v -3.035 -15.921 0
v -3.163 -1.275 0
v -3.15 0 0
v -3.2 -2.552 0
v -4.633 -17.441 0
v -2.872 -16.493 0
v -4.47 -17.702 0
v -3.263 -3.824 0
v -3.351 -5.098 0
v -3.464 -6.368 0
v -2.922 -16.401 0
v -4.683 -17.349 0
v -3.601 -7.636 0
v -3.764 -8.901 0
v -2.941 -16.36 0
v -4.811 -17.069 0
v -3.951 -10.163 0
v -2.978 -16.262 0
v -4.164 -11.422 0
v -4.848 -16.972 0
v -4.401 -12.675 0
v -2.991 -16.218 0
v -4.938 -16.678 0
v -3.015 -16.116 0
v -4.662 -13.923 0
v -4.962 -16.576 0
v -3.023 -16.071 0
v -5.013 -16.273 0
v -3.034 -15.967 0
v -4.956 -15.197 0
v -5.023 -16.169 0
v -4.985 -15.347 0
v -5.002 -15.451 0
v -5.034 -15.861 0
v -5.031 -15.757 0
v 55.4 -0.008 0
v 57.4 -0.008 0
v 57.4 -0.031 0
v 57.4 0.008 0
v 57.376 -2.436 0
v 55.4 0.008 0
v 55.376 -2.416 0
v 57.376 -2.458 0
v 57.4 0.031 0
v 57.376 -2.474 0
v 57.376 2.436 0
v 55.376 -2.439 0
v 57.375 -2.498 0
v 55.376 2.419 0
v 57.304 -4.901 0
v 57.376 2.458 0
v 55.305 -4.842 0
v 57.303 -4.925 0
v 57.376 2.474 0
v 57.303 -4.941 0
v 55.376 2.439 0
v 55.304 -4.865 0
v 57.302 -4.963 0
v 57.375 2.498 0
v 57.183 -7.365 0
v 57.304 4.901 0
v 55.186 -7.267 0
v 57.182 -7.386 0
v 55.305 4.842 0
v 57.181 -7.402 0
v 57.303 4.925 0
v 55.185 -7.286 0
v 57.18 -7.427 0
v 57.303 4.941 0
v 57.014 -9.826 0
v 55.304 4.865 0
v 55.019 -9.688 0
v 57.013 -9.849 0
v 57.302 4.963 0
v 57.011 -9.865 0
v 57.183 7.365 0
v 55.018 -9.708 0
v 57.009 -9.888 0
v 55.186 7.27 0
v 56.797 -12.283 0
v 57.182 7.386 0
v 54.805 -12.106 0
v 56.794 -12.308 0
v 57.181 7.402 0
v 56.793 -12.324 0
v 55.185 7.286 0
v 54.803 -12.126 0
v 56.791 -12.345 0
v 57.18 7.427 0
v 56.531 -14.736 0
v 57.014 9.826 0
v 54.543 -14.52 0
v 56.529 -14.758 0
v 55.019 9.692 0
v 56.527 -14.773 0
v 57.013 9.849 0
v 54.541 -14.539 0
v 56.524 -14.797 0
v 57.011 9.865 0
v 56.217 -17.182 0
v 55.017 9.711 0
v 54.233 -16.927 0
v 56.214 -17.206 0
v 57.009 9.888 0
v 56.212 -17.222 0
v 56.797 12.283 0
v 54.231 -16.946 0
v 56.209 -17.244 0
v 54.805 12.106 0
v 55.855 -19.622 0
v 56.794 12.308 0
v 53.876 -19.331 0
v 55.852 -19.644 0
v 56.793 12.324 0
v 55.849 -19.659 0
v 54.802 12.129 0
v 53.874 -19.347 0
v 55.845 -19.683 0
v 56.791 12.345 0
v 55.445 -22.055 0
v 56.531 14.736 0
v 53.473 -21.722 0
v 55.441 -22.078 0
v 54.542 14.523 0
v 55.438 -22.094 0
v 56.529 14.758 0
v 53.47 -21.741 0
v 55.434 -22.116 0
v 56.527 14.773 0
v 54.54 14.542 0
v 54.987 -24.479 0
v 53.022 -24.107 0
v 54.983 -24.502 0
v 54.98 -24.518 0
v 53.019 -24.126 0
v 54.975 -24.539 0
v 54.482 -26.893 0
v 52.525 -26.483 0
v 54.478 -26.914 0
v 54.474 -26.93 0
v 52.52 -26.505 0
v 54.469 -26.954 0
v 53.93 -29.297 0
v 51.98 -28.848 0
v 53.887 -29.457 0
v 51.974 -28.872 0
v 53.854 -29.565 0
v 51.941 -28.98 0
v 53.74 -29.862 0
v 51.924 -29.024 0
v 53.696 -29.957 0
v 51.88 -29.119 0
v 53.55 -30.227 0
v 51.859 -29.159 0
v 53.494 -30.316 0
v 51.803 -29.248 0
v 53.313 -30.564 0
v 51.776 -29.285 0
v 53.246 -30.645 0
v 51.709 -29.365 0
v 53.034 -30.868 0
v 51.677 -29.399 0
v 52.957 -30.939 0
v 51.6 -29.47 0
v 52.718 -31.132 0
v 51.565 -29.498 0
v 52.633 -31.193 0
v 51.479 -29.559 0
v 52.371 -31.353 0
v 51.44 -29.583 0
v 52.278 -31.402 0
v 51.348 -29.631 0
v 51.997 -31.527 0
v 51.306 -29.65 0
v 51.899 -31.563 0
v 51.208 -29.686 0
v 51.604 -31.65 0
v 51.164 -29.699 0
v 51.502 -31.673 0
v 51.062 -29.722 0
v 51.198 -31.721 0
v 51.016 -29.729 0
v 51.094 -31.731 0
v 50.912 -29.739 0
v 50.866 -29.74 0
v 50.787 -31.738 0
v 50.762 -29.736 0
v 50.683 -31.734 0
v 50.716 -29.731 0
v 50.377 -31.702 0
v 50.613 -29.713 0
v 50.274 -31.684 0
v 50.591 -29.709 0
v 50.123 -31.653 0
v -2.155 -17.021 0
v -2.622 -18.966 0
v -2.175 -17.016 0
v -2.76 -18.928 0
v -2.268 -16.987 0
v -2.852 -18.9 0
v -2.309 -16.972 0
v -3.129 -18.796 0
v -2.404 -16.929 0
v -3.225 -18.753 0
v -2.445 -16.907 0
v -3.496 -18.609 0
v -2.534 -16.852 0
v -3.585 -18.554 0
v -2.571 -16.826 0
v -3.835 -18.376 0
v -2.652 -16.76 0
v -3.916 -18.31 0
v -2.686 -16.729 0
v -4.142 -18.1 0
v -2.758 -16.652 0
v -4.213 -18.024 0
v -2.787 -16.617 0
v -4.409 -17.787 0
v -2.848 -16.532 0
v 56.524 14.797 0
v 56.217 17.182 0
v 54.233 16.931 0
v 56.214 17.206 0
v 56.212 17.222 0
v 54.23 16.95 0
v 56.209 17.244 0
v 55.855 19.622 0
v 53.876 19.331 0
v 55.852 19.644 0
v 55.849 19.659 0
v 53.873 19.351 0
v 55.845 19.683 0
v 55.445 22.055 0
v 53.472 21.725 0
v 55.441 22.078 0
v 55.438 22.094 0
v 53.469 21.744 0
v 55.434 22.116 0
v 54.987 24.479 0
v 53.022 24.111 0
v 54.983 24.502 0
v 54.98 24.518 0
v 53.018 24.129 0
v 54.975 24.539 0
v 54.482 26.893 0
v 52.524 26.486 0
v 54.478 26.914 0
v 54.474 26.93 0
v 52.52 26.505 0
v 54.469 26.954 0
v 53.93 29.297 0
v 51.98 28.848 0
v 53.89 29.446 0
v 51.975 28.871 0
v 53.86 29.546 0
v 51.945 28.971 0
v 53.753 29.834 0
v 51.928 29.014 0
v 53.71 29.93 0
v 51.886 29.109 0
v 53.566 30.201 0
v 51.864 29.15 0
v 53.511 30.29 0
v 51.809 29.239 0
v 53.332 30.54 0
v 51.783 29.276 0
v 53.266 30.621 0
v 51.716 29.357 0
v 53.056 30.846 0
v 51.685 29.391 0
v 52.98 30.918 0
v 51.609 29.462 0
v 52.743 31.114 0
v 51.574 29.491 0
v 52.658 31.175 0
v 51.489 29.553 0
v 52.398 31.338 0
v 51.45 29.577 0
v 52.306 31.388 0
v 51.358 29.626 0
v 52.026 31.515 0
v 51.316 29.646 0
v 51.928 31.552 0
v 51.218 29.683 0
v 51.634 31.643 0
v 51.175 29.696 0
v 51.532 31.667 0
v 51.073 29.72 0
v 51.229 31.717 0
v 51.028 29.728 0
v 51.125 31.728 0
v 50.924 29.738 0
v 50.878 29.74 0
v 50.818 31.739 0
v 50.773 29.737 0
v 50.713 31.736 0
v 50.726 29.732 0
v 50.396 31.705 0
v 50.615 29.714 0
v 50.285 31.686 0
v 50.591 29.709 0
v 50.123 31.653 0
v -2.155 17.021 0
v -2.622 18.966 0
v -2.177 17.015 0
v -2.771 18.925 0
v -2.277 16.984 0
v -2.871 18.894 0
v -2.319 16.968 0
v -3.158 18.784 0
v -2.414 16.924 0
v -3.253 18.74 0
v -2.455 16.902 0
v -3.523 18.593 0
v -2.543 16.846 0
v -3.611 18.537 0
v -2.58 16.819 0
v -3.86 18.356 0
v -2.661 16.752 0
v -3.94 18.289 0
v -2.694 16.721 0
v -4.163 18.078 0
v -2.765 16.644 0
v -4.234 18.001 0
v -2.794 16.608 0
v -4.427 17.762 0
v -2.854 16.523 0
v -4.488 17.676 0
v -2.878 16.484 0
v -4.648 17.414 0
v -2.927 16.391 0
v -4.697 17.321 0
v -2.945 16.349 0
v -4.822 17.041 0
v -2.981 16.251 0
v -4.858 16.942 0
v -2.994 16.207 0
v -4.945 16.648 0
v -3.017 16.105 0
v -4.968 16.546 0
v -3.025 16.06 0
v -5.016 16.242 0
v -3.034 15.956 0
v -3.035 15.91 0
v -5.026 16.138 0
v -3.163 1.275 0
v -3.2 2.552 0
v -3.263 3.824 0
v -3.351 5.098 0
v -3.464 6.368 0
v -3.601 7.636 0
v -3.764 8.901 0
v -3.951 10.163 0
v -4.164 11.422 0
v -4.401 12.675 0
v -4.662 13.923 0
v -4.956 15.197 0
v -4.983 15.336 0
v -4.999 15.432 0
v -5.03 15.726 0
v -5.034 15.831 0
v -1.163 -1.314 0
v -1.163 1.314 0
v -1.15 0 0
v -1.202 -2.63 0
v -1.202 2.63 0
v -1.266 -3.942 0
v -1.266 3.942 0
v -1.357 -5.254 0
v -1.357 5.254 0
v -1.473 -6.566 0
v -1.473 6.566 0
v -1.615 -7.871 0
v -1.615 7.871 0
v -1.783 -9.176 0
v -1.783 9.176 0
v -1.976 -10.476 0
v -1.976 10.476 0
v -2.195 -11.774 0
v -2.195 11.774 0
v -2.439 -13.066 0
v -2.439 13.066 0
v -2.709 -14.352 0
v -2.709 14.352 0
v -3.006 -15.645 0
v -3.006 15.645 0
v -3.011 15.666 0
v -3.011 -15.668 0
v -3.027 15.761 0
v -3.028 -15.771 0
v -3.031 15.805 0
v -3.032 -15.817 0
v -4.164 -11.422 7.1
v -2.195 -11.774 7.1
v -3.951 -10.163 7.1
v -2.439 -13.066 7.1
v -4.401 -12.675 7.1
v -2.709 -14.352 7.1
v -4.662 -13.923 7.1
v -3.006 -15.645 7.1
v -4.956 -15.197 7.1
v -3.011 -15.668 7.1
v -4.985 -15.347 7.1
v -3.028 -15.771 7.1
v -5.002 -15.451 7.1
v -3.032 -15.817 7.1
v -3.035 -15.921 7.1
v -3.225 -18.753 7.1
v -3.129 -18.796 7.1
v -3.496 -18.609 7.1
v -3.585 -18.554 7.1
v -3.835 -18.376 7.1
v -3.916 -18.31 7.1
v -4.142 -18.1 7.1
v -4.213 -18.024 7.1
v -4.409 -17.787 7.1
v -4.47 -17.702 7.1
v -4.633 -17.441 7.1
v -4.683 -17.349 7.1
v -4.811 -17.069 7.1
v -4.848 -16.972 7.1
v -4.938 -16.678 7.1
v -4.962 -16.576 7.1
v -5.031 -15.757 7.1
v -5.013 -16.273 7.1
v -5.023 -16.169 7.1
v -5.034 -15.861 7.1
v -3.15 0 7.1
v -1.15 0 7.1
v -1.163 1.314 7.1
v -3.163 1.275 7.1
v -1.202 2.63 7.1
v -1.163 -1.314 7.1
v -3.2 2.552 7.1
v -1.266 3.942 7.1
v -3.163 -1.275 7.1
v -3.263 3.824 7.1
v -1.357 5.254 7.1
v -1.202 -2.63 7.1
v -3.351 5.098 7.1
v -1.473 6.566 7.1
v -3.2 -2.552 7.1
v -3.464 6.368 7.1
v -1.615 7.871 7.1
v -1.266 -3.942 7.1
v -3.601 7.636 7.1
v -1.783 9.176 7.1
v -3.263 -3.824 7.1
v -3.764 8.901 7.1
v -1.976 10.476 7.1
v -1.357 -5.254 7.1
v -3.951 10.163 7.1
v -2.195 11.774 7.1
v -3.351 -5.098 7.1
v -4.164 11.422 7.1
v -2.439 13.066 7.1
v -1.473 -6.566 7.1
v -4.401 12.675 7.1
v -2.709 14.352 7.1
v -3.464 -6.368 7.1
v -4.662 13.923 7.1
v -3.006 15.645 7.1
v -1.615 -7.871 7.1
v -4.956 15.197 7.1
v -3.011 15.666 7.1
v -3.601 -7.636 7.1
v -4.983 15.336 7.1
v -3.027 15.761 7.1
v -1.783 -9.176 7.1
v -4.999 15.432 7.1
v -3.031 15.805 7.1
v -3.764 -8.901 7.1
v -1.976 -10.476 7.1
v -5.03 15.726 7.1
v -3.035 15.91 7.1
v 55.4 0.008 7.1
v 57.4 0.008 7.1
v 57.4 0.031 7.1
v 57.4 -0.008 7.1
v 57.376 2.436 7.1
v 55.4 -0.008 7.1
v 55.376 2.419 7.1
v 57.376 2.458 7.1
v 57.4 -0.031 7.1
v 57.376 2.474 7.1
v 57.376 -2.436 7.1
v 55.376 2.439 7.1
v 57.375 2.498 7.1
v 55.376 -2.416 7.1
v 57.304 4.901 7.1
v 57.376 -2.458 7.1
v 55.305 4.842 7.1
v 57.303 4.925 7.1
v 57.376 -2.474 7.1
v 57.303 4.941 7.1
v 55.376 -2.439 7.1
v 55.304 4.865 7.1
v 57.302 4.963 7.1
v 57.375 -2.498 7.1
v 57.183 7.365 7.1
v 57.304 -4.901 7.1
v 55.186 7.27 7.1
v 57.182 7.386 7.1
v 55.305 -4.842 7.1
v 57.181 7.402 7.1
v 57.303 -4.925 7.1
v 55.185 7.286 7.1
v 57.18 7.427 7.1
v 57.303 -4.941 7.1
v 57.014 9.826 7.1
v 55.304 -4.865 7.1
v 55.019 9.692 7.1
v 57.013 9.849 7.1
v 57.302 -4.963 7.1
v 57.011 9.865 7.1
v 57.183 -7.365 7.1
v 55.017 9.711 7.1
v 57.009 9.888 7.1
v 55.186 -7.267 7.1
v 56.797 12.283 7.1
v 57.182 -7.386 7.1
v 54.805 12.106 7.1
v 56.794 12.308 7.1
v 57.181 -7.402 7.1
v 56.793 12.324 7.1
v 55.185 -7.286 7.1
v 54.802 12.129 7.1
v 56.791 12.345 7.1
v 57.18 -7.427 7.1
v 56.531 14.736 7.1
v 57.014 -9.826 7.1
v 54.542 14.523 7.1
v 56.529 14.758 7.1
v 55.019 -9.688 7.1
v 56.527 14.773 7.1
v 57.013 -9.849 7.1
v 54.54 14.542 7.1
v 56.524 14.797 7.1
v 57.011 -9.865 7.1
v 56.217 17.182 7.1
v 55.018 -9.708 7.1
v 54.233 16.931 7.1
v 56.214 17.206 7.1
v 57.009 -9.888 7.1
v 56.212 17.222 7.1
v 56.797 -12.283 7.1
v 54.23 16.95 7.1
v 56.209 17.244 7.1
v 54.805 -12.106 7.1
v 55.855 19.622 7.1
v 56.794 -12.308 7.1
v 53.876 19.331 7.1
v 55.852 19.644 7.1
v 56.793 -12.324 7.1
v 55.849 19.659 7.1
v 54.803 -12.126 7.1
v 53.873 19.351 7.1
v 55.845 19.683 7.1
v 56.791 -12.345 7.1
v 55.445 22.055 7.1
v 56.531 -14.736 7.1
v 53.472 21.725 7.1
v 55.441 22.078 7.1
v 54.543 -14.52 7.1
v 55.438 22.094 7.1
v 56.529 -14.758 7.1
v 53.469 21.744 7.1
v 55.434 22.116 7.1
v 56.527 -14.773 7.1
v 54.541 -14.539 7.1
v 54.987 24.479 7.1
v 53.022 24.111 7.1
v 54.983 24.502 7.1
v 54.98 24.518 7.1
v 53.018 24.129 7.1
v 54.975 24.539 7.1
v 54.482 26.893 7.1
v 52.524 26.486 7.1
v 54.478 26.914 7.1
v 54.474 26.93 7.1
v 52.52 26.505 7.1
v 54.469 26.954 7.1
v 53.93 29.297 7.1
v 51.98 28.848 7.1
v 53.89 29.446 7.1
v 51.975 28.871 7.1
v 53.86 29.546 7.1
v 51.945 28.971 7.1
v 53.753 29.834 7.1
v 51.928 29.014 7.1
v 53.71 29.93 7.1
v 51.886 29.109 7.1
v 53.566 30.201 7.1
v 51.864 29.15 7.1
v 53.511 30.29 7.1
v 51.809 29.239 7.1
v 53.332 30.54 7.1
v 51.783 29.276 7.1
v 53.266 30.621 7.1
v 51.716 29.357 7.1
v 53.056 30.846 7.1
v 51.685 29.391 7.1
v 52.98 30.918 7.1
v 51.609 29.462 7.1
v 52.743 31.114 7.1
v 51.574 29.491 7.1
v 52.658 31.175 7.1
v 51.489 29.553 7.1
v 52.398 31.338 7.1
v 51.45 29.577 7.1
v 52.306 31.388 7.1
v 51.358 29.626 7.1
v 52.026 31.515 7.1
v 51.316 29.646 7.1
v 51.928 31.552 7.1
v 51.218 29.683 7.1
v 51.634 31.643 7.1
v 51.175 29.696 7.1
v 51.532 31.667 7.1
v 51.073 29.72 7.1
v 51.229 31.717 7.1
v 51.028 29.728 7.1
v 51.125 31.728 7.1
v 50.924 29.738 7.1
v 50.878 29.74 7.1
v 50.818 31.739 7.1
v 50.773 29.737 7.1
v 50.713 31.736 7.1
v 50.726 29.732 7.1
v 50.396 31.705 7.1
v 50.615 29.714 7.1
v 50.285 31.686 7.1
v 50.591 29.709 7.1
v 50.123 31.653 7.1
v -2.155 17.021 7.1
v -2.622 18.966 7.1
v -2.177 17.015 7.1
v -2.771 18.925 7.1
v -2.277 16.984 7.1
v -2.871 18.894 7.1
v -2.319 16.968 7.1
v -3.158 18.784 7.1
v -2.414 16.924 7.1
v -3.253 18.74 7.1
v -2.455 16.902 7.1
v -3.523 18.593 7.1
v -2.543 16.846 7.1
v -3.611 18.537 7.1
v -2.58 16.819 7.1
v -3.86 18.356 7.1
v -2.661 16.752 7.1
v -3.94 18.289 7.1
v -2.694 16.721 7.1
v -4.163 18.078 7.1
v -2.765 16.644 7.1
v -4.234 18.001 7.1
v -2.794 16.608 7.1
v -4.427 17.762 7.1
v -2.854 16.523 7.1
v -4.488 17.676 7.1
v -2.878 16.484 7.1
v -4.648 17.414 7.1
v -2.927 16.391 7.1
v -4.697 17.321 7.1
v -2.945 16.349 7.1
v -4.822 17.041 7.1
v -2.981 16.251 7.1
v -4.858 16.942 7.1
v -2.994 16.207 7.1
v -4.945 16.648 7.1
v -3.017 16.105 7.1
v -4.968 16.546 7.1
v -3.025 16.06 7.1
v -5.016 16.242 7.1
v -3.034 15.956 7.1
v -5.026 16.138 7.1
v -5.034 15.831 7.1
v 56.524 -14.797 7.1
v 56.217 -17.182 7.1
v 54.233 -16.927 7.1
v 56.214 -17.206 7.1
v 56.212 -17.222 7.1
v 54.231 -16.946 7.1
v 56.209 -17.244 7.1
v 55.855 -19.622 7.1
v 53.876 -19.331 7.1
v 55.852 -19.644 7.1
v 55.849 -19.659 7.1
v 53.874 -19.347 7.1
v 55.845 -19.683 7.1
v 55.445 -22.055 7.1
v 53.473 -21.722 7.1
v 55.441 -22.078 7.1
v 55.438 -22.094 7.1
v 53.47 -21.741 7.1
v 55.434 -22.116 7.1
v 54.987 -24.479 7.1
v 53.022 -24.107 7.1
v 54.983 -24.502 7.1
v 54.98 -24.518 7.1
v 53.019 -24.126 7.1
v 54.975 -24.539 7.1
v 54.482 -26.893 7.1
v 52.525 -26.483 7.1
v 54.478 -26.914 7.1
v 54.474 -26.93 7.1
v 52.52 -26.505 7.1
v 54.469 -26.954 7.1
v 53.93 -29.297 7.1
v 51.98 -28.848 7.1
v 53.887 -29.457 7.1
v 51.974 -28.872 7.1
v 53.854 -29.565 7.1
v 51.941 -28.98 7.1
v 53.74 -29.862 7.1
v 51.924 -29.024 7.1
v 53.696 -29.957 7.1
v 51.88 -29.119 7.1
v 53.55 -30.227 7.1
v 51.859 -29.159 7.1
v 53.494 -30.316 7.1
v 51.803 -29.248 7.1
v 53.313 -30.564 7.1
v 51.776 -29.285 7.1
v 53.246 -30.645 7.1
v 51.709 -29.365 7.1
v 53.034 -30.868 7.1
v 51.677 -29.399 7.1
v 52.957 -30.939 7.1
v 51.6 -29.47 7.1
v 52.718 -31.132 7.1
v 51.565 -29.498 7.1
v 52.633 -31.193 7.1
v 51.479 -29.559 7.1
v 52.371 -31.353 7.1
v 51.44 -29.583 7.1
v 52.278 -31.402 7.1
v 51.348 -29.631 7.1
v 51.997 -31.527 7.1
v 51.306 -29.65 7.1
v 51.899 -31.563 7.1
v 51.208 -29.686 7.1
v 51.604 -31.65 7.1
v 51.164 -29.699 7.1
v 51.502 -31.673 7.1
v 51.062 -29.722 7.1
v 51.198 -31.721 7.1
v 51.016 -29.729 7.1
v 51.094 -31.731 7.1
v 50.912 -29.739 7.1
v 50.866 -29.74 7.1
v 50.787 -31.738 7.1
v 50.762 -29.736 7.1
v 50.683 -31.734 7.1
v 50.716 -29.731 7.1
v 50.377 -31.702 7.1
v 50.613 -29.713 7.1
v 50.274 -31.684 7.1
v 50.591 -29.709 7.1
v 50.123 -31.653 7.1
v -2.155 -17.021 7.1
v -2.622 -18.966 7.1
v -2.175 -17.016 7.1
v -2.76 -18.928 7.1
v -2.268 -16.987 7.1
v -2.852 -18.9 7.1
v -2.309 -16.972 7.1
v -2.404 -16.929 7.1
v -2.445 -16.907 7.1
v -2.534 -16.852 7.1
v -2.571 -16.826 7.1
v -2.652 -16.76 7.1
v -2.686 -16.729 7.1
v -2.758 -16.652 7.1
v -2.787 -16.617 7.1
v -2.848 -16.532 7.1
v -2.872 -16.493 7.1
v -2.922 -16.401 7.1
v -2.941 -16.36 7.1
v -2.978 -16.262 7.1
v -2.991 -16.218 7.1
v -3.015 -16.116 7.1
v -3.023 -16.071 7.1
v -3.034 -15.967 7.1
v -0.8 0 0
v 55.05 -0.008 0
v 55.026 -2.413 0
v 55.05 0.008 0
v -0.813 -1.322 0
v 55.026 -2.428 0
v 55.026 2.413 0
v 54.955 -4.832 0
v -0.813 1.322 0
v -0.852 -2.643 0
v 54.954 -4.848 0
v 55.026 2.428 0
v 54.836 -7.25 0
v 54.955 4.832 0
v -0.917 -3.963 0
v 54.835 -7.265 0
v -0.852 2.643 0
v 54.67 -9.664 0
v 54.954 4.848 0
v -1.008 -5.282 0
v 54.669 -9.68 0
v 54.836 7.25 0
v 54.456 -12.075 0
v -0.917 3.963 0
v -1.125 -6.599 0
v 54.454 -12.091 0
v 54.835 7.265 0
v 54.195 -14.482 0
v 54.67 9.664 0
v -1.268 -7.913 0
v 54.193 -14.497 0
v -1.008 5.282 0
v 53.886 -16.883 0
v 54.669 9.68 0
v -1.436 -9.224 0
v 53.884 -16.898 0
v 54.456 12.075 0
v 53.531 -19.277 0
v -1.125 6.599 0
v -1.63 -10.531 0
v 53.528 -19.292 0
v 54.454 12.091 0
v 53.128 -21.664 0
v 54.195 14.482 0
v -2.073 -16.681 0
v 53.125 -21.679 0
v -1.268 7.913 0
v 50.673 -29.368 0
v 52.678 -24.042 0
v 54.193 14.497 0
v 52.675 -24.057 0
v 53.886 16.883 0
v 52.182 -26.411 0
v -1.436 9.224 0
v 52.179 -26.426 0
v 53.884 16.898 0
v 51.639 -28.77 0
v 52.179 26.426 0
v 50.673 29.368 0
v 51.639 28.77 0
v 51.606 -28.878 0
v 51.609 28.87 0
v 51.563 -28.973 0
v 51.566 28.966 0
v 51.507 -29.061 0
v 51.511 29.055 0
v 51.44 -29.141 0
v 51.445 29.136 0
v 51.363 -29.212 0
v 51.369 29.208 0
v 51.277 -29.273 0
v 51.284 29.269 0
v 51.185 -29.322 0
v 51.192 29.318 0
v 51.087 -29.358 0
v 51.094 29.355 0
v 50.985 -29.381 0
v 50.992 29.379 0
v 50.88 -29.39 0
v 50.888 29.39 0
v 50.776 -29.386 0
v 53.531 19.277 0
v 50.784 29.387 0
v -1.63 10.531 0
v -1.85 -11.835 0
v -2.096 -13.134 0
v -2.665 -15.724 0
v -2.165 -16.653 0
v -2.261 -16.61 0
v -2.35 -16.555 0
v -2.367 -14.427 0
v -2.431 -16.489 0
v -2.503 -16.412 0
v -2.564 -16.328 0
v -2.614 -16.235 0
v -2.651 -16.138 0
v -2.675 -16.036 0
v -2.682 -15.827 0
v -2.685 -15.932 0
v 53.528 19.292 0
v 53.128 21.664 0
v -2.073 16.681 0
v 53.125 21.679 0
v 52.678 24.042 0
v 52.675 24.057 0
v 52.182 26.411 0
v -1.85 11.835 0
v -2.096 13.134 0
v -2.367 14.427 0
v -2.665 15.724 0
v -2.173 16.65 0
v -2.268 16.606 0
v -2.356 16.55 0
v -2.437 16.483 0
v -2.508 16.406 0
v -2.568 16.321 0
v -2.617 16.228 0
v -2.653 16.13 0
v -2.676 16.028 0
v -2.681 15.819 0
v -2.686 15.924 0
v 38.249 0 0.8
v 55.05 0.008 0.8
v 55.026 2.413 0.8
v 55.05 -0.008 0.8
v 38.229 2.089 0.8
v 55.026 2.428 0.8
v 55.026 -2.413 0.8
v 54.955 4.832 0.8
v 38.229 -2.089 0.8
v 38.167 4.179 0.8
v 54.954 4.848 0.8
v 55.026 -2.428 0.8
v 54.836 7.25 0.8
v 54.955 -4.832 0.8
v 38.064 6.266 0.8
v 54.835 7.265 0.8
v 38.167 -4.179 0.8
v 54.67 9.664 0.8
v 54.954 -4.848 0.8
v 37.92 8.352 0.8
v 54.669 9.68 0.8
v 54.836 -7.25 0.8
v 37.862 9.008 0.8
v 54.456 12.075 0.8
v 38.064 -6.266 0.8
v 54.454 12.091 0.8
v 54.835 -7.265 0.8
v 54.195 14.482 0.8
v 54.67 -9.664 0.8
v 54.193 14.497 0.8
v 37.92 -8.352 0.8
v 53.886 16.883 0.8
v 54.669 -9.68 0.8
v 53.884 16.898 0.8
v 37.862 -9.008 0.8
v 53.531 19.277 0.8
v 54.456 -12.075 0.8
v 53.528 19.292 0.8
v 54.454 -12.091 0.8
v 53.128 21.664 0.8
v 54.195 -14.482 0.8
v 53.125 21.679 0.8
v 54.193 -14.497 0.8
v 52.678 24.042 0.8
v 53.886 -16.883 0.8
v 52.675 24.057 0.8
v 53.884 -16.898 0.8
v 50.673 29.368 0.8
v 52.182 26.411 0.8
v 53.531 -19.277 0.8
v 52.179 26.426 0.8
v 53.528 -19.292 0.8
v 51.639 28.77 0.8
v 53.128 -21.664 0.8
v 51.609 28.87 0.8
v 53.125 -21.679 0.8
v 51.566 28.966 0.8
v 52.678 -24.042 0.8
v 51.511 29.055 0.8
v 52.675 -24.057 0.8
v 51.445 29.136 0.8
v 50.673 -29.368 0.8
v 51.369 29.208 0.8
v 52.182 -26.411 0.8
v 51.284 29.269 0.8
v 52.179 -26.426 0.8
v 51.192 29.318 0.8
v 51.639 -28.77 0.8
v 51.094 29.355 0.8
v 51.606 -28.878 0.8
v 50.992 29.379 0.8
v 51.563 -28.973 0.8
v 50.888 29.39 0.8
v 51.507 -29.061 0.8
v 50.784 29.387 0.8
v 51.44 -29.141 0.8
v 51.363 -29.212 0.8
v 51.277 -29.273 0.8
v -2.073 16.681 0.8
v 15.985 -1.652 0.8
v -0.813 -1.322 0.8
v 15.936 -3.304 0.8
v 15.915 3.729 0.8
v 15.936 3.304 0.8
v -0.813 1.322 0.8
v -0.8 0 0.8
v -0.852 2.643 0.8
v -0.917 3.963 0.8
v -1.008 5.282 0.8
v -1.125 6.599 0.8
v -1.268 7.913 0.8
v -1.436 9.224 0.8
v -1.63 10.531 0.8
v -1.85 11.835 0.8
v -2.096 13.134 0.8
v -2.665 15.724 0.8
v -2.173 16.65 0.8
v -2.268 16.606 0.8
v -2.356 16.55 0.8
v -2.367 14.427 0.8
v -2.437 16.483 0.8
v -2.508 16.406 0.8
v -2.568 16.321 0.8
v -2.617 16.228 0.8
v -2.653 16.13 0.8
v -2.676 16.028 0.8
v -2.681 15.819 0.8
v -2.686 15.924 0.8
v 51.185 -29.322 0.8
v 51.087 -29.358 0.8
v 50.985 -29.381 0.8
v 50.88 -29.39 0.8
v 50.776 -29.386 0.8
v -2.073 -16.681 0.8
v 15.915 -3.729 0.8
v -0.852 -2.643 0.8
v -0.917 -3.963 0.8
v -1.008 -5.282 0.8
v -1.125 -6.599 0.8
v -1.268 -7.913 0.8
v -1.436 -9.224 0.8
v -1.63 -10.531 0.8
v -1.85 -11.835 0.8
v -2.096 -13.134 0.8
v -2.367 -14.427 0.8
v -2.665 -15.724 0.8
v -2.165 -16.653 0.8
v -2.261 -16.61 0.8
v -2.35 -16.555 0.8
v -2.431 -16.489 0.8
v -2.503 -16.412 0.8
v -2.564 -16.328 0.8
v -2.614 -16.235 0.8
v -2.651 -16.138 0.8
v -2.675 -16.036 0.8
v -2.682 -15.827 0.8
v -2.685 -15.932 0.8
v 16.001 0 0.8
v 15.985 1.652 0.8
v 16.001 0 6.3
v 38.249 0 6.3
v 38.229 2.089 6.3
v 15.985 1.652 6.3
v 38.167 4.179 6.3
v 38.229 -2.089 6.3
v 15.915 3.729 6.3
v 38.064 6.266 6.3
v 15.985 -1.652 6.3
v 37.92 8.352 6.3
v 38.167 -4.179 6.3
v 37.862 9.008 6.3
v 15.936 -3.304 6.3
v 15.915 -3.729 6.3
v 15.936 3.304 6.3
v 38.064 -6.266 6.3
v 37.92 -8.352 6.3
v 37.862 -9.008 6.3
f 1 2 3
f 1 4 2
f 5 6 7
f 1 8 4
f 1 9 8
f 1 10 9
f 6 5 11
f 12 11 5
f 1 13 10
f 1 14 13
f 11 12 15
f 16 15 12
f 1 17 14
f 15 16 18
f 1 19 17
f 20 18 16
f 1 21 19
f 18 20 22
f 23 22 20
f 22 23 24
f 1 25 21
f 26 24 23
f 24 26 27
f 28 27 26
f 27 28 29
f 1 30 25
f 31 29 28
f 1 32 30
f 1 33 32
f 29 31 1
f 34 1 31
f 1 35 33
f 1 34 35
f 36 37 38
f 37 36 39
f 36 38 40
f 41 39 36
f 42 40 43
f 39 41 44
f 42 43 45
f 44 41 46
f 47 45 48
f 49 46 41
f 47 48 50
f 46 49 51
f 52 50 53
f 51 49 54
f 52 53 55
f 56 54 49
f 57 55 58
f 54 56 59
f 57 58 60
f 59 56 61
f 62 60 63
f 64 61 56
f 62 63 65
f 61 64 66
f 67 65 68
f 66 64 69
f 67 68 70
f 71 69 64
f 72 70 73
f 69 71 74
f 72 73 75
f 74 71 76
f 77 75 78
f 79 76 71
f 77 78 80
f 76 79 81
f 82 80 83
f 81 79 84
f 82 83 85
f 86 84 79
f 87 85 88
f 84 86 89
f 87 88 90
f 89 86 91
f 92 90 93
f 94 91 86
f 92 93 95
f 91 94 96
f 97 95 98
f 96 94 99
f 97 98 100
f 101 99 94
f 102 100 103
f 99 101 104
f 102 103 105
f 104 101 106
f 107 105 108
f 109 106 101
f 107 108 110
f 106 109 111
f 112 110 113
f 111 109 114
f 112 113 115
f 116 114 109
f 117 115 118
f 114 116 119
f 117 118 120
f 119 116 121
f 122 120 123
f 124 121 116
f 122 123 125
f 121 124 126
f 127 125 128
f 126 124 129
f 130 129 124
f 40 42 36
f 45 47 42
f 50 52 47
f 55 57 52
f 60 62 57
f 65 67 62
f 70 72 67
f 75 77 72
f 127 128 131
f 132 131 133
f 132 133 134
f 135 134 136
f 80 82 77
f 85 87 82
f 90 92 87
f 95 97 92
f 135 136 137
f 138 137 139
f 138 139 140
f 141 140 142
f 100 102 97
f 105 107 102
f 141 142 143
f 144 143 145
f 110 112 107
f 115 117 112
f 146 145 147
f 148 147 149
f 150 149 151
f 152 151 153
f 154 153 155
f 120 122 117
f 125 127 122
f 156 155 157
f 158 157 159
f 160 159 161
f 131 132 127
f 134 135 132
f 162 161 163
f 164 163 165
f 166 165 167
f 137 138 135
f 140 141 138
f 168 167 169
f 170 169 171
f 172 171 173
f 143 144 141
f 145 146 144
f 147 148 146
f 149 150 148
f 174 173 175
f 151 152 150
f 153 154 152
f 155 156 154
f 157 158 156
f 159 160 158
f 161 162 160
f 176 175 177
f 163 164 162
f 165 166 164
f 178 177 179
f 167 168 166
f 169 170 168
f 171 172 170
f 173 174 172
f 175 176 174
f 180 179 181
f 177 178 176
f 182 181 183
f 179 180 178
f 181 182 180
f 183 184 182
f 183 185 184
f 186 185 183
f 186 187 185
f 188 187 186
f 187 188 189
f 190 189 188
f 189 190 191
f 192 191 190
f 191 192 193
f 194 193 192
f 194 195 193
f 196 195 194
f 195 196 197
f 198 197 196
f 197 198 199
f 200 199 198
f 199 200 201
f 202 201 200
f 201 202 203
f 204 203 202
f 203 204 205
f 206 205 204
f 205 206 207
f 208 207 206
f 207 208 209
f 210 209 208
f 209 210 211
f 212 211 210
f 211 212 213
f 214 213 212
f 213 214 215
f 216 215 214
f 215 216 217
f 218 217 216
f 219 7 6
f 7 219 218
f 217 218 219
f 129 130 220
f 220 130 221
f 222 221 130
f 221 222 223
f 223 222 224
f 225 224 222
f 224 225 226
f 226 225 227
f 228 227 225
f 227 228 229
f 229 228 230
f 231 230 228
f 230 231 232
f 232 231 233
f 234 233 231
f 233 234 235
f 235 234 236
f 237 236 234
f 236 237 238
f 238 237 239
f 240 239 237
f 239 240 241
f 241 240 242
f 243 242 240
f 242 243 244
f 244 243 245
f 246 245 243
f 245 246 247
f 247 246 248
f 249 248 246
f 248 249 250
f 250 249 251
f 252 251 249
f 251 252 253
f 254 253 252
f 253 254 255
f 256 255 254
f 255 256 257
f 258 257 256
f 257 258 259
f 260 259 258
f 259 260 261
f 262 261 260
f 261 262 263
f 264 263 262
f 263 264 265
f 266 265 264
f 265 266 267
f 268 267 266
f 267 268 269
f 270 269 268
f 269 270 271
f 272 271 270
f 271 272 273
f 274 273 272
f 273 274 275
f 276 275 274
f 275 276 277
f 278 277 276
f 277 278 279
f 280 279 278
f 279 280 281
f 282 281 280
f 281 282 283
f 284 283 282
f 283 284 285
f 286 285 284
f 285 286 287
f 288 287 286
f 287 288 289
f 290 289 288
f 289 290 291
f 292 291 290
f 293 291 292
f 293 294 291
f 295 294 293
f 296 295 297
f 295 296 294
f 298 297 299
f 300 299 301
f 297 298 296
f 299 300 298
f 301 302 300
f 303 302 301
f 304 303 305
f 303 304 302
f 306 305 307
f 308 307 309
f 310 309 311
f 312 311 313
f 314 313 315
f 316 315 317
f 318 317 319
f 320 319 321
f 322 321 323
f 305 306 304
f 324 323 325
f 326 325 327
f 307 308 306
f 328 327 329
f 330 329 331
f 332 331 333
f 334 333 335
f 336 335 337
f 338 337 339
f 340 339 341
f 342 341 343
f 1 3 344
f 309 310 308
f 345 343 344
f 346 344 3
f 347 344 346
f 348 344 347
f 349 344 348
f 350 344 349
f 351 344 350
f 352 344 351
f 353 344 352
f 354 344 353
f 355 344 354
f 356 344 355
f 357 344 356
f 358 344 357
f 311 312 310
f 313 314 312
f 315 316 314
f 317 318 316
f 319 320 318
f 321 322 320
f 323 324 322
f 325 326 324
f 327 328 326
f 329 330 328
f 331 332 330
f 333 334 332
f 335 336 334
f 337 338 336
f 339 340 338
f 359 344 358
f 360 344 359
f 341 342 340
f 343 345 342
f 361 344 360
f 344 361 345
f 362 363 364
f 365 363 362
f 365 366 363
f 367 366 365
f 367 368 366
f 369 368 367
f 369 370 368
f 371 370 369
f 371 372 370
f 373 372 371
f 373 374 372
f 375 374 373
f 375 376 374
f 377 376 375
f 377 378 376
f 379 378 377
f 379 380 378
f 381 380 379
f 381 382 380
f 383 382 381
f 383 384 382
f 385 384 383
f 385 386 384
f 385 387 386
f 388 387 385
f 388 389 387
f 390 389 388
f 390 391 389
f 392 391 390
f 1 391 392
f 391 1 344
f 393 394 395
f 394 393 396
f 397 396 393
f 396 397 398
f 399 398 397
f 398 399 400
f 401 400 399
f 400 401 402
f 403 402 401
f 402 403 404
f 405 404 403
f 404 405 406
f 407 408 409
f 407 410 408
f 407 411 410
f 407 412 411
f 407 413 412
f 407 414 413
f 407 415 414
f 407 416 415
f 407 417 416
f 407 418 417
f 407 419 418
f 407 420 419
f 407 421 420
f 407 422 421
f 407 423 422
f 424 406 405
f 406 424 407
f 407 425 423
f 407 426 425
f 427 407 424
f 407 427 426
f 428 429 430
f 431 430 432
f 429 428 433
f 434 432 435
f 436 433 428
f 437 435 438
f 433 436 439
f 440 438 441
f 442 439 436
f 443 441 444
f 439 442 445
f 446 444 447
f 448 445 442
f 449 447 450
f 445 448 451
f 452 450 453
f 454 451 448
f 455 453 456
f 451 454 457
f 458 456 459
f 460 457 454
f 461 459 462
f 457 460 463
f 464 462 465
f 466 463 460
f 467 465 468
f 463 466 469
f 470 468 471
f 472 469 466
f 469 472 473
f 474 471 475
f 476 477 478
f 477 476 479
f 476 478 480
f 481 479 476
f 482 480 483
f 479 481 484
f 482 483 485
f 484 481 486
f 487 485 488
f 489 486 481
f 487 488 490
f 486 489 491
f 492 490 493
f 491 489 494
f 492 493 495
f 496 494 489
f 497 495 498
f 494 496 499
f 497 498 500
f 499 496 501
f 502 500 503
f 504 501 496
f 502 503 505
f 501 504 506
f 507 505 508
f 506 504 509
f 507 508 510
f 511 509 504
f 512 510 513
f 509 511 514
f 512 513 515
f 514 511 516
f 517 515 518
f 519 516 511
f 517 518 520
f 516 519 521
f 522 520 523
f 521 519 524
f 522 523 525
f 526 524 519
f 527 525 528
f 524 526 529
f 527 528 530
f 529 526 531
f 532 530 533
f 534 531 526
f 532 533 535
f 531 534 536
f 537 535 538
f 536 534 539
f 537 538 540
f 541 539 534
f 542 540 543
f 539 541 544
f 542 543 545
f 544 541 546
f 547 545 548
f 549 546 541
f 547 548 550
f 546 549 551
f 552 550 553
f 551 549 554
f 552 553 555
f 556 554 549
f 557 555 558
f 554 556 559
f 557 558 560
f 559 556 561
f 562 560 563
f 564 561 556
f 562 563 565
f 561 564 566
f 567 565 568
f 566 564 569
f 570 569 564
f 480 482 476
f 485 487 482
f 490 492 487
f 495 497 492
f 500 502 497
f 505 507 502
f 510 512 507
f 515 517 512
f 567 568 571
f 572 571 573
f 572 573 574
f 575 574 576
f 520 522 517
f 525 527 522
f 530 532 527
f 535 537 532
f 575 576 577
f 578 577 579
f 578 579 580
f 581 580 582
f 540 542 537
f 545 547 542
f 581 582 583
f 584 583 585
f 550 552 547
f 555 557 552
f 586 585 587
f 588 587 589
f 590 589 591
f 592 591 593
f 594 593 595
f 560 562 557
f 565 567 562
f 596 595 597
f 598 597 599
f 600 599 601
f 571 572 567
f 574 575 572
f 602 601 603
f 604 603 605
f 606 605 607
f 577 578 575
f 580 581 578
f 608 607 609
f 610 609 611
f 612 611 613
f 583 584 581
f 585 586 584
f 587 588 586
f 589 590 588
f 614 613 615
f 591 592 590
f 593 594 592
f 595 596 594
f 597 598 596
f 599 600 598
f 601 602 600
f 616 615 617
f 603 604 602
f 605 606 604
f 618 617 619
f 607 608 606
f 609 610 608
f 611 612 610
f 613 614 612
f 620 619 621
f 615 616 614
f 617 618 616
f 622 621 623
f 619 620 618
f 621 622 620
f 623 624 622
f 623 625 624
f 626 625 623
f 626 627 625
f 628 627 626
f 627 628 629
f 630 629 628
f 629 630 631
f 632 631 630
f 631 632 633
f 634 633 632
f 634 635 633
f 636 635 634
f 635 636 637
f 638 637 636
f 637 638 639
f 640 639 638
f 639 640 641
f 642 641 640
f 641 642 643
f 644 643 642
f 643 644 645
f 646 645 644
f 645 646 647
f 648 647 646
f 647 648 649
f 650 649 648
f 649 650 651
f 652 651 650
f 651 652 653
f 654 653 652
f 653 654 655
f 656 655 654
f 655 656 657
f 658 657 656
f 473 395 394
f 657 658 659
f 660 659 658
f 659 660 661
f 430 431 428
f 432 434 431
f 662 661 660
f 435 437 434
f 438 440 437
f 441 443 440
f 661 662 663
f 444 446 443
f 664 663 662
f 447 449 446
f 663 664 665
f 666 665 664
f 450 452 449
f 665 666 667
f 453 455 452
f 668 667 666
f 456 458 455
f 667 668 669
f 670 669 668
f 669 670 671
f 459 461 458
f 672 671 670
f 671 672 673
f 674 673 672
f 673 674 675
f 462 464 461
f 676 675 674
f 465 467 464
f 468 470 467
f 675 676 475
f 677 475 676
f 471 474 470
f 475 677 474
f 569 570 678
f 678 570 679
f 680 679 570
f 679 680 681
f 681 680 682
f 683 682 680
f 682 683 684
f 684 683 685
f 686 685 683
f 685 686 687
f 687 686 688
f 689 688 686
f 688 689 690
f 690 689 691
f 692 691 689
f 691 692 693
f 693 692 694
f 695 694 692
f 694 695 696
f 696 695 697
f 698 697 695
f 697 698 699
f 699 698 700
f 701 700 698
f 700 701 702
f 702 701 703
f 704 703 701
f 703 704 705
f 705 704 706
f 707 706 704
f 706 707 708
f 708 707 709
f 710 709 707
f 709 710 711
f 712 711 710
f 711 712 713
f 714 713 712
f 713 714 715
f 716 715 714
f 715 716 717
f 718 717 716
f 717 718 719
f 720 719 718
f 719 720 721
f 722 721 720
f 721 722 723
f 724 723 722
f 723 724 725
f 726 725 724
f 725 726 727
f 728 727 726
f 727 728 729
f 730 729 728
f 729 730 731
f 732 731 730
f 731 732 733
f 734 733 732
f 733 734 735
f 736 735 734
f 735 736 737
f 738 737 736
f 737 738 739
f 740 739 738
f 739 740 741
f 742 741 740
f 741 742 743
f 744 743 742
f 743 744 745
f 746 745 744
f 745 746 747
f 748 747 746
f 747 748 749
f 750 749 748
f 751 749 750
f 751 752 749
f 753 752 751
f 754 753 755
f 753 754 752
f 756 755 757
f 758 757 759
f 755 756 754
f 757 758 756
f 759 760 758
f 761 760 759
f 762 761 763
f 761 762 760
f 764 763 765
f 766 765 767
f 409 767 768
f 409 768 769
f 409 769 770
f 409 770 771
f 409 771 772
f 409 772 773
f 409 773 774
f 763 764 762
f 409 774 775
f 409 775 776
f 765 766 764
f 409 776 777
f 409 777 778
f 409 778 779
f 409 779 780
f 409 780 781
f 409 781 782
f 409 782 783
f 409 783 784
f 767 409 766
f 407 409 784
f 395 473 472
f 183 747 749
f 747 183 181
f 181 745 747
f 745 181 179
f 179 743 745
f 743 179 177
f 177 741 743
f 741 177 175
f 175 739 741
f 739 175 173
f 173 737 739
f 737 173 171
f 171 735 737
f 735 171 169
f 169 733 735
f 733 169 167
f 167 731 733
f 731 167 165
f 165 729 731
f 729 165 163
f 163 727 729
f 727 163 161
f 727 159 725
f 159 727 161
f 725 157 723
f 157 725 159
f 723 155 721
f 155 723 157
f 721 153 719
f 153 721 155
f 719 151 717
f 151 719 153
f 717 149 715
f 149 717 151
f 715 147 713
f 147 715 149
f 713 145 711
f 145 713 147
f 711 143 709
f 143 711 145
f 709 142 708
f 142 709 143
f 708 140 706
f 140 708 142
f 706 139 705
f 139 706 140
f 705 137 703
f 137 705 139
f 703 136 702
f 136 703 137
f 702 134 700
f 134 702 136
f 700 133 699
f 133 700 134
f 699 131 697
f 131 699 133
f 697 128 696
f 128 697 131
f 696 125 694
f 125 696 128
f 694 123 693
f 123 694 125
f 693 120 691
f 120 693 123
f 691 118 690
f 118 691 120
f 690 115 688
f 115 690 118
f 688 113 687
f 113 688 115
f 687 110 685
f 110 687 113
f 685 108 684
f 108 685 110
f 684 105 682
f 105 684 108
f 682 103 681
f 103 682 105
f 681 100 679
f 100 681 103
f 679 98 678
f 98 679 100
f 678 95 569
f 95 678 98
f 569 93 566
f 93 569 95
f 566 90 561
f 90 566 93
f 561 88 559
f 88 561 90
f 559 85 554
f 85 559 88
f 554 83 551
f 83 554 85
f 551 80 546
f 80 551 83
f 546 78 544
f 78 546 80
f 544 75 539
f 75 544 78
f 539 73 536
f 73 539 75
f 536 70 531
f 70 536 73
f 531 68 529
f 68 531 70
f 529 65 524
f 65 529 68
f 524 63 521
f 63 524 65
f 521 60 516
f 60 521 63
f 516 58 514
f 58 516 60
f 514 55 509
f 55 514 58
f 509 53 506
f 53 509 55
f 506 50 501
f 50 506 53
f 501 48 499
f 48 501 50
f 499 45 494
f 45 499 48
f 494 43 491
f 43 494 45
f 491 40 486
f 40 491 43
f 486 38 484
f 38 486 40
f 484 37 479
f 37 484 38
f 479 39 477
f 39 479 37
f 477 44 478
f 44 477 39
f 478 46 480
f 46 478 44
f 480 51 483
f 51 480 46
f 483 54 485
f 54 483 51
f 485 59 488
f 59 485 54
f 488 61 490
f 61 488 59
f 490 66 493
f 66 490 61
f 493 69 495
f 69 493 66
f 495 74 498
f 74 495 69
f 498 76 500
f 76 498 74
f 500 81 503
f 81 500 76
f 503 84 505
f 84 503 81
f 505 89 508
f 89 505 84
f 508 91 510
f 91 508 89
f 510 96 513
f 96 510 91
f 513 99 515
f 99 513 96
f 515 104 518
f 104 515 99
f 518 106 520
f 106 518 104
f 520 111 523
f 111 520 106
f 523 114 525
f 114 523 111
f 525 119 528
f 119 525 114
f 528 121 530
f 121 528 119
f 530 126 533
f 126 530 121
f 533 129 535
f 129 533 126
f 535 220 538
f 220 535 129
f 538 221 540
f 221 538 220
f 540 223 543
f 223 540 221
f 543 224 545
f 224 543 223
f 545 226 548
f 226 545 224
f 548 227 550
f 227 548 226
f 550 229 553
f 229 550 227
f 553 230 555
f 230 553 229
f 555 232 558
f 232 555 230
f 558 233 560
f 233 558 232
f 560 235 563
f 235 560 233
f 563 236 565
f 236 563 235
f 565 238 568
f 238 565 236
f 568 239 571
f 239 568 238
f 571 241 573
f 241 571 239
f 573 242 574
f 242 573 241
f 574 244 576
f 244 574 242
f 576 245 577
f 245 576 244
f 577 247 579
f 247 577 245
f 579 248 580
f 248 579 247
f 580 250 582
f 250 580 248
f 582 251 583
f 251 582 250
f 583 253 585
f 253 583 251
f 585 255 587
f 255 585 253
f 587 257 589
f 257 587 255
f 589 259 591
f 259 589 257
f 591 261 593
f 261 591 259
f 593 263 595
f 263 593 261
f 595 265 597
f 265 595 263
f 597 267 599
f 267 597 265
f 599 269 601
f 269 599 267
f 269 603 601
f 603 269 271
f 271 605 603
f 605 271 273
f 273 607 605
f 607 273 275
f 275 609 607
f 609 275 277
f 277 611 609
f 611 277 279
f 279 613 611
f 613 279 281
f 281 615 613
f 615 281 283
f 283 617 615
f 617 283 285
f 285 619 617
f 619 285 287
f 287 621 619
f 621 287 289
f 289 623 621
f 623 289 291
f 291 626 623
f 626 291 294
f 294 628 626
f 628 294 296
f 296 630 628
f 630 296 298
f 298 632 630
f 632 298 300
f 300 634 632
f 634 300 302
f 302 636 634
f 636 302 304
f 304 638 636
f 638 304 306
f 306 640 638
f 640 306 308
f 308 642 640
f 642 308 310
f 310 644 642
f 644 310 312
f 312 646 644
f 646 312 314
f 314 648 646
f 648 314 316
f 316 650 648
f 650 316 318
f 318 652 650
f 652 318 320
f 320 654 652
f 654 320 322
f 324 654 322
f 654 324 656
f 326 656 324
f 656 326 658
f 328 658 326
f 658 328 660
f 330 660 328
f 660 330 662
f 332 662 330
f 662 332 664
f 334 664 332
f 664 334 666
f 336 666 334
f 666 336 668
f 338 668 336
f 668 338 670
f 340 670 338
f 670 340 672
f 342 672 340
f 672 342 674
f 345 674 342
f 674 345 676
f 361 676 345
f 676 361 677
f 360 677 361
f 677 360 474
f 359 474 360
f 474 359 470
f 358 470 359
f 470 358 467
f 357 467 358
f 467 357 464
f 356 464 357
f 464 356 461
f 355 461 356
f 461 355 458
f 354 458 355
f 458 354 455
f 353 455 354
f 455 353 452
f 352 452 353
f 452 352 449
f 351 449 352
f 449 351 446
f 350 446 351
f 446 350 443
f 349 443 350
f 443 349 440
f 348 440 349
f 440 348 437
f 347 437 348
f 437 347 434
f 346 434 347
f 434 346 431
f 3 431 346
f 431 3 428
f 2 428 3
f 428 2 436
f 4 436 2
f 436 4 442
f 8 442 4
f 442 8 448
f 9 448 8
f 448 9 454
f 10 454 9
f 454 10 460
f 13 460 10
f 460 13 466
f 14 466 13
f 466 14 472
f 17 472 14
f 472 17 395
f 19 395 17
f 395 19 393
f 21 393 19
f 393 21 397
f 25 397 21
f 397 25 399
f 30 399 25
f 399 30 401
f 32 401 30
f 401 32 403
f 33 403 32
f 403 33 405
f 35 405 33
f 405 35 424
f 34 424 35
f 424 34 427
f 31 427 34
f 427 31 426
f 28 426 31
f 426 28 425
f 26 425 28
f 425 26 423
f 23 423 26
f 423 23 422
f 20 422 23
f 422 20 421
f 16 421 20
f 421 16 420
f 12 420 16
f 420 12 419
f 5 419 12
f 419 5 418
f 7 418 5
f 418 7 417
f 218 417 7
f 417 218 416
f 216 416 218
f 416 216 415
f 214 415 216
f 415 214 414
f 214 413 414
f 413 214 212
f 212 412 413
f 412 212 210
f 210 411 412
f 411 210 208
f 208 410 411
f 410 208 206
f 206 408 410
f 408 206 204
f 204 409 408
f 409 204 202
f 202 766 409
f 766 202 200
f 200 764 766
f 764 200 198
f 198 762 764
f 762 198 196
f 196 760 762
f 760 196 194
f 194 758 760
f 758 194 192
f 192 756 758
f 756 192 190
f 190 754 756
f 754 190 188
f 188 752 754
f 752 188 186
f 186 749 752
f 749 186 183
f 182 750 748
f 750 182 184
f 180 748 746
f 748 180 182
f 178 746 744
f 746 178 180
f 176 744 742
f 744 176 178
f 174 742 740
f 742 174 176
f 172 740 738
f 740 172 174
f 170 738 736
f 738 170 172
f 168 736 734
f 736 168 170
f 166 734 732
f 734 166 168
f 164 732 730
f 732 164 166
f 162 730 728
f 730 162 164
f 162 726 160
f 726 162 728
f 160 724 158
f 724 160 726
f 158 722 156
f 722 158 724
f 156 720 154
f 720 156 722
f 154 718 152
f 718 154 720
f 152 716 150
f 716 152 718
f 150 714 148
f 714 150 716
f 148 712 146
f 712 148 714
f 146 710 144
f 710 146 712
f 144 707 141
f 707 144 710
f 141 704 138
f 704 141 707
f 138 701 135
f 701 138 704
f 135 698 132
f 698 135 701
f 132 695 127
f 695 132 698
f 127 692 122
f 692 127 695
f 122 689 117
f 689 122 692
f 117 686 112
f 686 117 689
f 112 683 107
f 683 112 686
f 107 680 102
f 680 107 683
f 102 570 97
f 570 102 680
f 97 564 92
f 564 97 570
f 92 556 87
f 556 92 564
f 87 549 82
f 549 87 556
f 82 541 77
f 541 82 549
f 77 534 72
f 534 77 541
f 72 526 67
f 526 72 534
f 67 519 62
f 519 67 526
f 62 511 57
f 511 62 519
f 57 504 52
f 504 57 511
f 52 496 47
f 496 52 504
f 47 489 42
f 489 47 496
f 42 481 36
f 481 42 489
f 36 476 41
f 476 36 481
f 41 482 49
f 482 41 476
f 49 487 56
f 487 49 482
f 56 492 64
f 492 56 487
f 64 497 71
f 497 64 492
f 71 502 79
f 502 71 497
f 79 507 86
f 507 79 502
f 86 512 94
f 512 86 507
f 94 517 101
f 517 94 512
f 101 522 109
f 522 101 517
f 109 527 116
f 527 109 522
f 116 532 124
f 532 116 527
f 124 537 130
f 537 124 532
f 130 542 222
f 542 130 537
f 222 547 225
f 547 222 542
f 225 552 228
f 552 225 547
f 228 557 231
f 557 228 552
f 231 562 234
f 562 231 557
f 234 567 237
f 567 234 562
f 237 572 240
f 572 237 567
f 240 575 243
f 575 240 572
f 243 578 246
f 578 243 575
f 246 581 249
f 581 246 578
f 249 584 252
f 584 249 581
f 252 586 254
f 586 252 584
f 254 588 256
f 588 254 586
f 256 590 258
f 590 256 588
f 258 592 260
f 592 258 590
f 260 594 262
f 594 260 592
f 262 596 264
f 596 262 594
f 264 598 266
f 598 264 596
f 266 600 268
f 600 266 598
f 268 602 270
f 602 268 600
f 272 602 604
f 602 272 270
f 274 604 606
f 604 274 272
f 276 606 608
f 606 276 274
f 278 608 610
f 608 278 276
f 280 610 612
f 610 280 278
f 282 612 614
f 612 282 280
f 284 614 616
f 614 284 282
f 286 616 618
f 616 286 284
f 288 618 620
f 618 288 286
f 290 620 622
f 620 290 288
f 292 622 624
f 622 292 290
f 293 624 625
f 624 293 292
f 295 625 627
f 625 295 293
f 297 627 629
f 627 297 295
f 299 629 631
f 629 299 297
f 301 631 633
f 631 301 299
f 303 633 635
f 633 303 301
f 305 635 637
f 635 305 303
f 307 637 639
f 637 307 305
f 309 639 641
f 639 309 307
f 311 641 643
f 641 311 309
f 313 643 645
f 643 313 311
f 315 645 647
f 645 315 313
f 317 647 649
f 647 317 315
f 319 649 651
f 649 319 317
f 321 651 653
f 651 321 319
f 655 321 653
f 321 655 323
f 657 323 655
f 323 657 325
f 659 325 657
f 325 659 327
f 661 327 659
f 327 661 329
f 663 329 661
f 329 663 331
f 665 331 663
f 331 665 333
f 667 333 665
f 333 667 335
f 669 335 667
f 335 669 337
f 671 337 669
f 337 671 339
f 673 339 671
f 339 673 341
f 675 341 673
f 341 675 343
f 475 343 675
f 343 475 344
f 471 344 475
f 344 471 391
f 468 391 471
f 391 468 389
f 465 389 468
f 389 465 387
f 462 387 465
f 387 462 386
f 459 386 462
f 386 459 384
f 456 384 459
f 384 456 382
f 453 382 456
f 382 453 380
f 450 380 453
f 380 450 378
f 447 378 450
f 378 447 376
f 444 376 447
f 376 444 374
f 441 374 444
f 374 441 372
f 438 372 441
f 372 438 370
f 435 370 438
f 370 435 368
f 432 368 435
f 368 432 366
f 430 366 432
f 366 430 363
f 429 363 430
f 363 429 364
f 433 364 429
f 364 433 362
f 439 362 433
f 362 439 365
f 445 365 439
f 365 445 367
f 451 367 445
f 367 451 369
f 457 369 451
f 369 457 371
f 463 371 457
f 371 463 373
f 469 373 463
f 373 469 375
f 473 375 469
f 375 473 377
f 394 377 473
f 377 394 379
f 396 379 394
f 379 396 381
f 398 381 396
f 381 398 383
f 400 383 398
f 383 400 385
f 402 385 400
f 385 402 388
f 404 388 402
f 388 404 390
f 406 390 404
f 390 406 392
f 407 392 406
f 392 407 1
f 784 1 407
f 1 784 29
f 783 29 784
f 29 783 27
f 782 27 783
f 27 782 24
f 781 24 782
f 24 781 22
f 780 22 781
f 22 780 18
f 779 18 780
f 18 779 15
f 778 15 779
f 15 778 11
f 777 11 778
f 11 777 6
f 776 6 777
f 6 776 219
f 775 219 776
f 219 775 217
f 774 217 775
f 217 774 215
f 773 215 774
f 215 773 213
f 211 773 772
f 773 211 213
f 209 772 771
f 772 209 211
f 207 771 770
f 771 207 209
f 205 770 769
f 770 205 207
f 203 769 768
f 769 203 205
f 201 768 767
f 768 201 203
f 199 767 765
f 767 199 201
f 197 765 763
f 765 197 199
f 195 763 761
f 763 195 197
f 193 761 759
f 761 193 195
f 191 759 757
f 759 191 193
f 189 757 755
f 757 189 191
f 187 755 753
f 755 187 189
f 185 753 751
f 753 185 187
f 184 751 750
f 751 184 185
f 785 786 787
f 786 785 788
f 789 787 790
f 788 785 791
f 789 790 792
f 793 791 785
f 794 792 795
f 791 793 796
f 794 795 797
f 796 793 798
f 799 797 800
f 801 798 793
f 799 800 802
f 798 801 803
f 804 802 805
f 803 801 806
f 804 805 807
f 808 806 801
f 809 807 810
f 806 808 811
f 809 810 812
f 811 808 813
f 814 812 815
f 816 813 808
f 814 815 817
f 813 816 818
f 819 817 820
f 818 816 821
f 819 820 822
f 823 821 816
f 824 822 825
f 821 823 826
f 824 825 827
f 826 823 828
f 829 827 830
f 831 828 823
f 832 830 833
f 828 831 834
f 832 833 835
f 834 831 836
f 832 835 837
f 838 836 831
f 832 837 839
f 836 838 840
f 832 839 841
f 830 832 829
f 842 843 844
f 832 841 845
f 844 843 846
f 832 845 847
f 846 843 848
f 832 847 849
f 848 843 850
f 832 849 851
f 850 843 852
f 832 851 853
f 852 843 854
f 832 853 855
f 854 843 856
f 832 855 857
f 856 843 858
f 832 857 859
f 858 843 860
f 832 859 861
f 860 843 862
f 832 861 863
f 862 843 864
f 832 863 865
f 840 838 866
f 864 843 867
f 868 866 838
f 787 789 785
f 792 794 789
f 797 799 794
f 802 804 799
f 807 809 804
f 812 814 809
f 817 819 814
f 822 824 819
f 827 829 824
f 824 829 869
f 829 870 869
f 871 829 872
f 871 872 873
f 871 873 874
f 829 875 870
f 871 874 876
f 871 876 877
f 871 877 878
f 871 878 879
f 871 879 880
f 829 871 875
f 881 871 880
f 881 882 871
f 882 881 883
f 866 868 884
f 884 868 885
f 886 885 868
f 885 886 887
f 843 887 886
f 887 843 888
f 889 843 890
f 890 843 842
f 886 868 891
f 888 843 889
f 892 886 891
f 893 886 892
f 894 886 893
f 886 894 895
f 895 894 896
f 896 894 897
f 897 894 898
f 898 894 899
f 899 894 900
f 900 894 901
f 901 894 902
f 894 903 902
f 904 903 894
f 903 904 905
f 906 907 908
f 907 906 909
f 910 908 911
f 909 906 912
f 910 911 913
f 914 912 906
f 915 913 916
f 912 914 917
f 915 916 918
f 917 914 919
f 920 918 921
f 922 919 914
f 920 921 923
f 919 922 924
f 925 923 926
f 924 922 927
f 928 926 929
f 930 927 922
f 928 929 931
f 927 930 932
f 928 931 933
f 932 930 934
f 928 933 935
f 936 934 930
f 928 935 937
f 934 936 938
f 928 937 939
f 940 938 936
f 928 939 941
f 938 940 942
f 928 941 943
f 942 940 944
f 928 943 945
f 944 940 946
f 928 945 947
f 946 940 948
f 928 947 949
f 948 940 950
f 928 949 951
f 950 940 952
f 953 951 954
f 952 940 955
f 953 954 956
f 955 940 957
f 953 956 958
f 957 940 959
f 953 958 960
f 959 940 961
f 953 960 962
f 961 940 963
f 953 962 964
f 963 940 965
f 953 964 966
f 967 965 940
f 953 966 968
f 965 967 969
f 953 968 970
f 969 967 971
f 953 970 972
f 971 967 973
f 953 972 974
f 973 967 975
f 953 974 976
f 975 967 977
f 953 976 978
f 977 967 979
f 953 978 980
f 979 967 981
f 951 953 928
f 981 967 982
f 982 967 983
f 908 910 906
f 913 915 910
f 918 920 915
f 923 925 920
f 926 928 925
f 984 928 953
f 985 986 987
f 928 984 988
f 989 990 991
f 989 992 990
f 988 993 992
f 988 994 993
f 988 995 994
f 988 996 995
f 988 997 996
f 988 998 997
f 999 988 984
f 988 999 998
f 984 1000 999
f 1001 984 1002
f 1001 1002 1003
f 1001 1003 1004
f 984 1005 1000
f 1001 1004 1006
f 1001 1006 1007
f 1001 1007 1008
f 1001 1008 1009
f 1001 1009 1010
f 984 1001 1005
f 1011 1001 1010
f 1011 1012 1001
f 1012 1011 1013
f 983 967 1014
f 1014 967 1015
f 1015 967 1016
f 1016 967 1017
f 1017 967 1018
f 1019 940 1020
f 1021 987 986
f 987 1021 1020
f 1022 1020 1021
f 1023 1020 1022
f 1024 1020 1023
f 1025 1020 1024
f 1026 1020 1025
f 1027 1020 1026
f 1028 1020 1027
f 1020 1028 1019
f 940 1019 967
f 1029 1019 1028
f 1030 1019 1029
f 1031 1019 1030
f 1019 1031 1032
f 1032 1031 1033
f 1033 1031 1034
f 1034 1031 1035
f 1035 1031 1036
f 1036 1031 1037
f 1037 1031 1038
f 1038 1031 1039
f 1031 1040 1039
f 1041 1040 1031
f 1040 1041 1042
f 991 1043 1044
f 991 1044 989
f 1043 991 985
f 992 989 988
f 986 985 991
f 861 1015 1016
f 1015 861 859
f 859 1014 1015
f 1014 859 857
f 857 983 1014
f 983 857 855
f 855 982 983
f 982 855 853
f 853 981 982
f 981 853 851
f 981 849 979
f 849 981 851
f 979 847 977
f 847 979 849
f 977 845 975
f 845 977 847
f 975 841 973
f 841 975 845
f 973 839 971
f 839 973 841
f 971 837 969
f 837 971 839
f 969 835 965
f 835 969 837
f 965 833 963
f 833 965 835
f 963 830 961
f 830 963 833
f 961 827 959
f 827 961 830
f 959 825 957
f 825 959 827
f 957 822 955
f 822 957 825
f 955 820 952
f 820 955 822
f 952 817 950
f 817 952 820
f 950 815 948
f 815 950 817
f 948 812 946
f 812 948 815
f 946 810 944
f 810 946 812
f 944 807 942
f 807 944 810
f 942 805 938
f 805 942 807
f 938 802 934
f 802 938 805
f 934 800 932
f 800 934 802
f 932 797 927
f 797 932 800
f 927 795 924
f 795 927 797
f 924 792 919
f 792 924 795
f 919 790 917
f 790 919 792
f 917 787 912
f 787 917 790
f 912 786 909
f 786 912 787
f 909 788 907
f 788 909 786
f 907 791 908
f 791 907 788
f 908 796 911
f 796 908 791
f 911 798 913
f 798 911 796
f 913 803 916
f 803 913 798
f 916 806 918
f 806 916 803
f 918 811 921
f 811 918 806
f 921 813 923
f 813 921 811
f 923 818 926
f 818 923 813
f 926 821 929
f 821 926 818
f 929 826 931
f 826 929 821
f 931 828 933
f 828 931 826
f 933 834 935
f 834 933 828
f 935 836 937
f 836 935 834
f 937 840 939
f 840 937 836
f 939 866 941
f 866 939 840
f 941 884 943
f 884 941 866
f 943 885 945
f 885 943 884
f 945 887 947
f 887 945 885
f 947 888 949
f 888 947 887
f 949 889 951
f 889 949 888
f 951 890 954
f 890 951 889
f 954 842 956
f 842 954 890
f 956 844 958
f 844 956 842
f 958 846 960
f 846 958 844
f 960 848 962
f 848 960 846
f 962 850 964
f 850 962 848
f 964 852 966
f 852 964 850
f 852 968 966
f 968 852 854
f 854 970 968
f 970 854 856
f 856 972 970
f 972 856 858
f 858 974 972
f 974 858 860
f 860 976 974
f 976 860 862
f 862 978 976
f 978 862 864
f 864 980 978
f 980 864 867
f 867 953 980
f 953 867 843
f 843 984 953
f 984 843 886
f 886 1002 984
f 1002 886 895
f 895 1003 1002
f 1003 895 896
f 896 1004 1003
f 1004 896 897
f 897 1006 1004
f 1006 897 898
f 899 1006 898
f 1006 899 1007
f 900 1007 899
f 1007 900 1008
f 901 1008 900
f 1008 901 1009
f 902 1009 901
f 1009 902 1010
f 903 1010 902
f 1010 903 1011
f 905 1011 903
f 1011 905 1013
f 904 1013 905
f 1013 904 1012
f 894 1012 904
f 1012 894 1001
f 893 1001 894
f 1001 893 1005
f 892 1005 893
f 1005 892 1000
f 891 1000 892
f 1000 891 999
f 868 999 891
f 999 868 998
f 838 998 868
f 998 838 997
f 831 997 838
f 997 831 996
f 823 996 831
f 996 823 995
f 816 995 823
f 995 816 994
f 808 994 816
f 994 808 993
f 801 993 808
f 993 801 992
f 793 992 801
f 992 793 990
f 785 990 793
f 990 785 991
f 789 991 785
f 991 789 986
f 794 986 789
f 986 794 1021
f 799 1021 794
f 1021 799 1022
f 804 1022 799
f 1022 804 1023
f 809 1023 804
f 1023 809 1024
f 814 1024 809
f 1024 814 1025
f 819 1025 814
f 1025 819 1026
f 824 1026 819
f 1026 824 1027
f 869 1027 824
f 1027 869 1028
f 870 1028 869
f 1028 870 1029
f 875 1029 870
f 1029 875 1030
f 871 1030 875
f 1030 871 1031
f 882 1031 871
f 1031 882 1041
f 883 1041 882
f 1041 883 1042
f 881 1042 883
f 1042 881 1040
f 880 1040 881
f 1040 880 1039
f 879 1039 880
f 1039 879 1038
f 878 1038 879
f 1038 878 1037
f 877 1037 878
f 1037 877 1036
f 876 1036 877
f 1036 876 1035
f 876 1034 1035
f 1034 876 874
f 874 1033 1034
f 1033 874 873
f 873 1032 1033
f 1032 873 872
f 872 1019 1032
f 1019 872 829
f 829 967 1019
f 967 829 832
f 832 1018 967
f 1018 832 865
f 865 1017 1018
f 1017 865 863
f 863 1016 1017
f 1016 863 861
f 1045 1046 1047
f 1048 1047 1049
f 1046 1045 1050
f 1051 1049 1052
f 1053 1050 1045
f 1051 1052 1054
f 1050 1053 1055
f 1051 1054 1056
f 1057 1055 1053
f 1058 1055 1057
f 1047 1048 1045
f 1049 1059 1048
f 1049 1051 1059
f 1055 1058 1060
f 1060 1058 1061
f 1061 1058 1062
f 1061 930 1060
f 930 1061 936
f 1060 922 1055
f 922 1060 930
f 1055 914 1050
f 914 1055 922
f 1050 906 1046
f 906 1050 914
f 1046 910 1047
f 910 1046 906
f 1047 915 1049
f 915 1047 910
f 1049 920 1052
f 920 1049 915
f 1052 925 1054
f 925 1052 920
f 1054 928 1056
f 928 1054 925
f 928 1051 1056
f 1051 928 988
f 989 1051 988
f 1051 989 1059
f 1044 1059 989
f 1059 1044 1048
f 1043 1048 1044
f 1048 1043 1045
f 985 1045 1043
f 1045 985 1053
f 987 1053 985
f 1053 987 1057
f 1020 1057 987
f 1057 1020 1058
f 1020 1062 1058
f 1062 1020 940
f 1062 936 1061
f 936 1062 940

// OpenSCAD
// Gen-DF — fit coupon (bay part): O20/O5 THROUGH pockets at carrier thickness (test on a steel offcut), 608 seat,
// D-flat bore, gap shim, and one bobbin-bay slice (bobbin footprint + bay_clear) to test former fit.
include <parameters.scad>;
$fn = 48;
// D-flat keyed bore: flat faces +X (angle 0 = magnet pocket 0 = index notch)
module dflat_bore(h) {
    intersection() {
        cylinder(d=shaft_bore, h=h);
        translate([-shaft_bore, -shaft_bore, 0]) cube([shaft_bore + dflat_x, 2*shaft_bore, h]);
    }
}
module sector_2d(r_in, r_out, ang) {
    polygon([
        for (a = [-ang/2 : ang/24 : ang/2]) [r_in*cos(a), r_in*sin(a)],
        for (a = [ang/2 : -ang/24 : -ang/2]) [r_out*cos(a), r_out*sin(a)]
    ]);
}
module footprint_2d() { offset(r=wall) sector_2d(coil_id_r, coil_od_r, span_deg); }
module hub_2d()       { offset(delta=-coil_core_inset) sector_2d(coil_id_r, coil_od_r, span_deg); }

// bay slice at FULL stator thickness with one bobbin BASE printed IN PLACE inside it (bay_clear gap): this is the
// print-in-place test for the one-plate stator. After printing, the base must pop out with finger pressure; if it is fused,
// print coil_former.stl separately (print-packs/parts/) instead of using the in-place bases.
translate([-coil_id_r, 0, 0]) {
    difference() {
        linear_extrude(stator_thick) offset(r=bay_clear + 2) footprint_2d();
        translate([0, 0, -0.1]) linear_extrude(stator_thick + 0.2) offset(r=bay_clear) footprint_2d();
    }
    union() {
        linear_extrude(flange_t) footprint_2d();
        translate([0, 0, flange_t - 0.01]) linear_extrude(former_web + 0.01) hub_2d();
    }
}
